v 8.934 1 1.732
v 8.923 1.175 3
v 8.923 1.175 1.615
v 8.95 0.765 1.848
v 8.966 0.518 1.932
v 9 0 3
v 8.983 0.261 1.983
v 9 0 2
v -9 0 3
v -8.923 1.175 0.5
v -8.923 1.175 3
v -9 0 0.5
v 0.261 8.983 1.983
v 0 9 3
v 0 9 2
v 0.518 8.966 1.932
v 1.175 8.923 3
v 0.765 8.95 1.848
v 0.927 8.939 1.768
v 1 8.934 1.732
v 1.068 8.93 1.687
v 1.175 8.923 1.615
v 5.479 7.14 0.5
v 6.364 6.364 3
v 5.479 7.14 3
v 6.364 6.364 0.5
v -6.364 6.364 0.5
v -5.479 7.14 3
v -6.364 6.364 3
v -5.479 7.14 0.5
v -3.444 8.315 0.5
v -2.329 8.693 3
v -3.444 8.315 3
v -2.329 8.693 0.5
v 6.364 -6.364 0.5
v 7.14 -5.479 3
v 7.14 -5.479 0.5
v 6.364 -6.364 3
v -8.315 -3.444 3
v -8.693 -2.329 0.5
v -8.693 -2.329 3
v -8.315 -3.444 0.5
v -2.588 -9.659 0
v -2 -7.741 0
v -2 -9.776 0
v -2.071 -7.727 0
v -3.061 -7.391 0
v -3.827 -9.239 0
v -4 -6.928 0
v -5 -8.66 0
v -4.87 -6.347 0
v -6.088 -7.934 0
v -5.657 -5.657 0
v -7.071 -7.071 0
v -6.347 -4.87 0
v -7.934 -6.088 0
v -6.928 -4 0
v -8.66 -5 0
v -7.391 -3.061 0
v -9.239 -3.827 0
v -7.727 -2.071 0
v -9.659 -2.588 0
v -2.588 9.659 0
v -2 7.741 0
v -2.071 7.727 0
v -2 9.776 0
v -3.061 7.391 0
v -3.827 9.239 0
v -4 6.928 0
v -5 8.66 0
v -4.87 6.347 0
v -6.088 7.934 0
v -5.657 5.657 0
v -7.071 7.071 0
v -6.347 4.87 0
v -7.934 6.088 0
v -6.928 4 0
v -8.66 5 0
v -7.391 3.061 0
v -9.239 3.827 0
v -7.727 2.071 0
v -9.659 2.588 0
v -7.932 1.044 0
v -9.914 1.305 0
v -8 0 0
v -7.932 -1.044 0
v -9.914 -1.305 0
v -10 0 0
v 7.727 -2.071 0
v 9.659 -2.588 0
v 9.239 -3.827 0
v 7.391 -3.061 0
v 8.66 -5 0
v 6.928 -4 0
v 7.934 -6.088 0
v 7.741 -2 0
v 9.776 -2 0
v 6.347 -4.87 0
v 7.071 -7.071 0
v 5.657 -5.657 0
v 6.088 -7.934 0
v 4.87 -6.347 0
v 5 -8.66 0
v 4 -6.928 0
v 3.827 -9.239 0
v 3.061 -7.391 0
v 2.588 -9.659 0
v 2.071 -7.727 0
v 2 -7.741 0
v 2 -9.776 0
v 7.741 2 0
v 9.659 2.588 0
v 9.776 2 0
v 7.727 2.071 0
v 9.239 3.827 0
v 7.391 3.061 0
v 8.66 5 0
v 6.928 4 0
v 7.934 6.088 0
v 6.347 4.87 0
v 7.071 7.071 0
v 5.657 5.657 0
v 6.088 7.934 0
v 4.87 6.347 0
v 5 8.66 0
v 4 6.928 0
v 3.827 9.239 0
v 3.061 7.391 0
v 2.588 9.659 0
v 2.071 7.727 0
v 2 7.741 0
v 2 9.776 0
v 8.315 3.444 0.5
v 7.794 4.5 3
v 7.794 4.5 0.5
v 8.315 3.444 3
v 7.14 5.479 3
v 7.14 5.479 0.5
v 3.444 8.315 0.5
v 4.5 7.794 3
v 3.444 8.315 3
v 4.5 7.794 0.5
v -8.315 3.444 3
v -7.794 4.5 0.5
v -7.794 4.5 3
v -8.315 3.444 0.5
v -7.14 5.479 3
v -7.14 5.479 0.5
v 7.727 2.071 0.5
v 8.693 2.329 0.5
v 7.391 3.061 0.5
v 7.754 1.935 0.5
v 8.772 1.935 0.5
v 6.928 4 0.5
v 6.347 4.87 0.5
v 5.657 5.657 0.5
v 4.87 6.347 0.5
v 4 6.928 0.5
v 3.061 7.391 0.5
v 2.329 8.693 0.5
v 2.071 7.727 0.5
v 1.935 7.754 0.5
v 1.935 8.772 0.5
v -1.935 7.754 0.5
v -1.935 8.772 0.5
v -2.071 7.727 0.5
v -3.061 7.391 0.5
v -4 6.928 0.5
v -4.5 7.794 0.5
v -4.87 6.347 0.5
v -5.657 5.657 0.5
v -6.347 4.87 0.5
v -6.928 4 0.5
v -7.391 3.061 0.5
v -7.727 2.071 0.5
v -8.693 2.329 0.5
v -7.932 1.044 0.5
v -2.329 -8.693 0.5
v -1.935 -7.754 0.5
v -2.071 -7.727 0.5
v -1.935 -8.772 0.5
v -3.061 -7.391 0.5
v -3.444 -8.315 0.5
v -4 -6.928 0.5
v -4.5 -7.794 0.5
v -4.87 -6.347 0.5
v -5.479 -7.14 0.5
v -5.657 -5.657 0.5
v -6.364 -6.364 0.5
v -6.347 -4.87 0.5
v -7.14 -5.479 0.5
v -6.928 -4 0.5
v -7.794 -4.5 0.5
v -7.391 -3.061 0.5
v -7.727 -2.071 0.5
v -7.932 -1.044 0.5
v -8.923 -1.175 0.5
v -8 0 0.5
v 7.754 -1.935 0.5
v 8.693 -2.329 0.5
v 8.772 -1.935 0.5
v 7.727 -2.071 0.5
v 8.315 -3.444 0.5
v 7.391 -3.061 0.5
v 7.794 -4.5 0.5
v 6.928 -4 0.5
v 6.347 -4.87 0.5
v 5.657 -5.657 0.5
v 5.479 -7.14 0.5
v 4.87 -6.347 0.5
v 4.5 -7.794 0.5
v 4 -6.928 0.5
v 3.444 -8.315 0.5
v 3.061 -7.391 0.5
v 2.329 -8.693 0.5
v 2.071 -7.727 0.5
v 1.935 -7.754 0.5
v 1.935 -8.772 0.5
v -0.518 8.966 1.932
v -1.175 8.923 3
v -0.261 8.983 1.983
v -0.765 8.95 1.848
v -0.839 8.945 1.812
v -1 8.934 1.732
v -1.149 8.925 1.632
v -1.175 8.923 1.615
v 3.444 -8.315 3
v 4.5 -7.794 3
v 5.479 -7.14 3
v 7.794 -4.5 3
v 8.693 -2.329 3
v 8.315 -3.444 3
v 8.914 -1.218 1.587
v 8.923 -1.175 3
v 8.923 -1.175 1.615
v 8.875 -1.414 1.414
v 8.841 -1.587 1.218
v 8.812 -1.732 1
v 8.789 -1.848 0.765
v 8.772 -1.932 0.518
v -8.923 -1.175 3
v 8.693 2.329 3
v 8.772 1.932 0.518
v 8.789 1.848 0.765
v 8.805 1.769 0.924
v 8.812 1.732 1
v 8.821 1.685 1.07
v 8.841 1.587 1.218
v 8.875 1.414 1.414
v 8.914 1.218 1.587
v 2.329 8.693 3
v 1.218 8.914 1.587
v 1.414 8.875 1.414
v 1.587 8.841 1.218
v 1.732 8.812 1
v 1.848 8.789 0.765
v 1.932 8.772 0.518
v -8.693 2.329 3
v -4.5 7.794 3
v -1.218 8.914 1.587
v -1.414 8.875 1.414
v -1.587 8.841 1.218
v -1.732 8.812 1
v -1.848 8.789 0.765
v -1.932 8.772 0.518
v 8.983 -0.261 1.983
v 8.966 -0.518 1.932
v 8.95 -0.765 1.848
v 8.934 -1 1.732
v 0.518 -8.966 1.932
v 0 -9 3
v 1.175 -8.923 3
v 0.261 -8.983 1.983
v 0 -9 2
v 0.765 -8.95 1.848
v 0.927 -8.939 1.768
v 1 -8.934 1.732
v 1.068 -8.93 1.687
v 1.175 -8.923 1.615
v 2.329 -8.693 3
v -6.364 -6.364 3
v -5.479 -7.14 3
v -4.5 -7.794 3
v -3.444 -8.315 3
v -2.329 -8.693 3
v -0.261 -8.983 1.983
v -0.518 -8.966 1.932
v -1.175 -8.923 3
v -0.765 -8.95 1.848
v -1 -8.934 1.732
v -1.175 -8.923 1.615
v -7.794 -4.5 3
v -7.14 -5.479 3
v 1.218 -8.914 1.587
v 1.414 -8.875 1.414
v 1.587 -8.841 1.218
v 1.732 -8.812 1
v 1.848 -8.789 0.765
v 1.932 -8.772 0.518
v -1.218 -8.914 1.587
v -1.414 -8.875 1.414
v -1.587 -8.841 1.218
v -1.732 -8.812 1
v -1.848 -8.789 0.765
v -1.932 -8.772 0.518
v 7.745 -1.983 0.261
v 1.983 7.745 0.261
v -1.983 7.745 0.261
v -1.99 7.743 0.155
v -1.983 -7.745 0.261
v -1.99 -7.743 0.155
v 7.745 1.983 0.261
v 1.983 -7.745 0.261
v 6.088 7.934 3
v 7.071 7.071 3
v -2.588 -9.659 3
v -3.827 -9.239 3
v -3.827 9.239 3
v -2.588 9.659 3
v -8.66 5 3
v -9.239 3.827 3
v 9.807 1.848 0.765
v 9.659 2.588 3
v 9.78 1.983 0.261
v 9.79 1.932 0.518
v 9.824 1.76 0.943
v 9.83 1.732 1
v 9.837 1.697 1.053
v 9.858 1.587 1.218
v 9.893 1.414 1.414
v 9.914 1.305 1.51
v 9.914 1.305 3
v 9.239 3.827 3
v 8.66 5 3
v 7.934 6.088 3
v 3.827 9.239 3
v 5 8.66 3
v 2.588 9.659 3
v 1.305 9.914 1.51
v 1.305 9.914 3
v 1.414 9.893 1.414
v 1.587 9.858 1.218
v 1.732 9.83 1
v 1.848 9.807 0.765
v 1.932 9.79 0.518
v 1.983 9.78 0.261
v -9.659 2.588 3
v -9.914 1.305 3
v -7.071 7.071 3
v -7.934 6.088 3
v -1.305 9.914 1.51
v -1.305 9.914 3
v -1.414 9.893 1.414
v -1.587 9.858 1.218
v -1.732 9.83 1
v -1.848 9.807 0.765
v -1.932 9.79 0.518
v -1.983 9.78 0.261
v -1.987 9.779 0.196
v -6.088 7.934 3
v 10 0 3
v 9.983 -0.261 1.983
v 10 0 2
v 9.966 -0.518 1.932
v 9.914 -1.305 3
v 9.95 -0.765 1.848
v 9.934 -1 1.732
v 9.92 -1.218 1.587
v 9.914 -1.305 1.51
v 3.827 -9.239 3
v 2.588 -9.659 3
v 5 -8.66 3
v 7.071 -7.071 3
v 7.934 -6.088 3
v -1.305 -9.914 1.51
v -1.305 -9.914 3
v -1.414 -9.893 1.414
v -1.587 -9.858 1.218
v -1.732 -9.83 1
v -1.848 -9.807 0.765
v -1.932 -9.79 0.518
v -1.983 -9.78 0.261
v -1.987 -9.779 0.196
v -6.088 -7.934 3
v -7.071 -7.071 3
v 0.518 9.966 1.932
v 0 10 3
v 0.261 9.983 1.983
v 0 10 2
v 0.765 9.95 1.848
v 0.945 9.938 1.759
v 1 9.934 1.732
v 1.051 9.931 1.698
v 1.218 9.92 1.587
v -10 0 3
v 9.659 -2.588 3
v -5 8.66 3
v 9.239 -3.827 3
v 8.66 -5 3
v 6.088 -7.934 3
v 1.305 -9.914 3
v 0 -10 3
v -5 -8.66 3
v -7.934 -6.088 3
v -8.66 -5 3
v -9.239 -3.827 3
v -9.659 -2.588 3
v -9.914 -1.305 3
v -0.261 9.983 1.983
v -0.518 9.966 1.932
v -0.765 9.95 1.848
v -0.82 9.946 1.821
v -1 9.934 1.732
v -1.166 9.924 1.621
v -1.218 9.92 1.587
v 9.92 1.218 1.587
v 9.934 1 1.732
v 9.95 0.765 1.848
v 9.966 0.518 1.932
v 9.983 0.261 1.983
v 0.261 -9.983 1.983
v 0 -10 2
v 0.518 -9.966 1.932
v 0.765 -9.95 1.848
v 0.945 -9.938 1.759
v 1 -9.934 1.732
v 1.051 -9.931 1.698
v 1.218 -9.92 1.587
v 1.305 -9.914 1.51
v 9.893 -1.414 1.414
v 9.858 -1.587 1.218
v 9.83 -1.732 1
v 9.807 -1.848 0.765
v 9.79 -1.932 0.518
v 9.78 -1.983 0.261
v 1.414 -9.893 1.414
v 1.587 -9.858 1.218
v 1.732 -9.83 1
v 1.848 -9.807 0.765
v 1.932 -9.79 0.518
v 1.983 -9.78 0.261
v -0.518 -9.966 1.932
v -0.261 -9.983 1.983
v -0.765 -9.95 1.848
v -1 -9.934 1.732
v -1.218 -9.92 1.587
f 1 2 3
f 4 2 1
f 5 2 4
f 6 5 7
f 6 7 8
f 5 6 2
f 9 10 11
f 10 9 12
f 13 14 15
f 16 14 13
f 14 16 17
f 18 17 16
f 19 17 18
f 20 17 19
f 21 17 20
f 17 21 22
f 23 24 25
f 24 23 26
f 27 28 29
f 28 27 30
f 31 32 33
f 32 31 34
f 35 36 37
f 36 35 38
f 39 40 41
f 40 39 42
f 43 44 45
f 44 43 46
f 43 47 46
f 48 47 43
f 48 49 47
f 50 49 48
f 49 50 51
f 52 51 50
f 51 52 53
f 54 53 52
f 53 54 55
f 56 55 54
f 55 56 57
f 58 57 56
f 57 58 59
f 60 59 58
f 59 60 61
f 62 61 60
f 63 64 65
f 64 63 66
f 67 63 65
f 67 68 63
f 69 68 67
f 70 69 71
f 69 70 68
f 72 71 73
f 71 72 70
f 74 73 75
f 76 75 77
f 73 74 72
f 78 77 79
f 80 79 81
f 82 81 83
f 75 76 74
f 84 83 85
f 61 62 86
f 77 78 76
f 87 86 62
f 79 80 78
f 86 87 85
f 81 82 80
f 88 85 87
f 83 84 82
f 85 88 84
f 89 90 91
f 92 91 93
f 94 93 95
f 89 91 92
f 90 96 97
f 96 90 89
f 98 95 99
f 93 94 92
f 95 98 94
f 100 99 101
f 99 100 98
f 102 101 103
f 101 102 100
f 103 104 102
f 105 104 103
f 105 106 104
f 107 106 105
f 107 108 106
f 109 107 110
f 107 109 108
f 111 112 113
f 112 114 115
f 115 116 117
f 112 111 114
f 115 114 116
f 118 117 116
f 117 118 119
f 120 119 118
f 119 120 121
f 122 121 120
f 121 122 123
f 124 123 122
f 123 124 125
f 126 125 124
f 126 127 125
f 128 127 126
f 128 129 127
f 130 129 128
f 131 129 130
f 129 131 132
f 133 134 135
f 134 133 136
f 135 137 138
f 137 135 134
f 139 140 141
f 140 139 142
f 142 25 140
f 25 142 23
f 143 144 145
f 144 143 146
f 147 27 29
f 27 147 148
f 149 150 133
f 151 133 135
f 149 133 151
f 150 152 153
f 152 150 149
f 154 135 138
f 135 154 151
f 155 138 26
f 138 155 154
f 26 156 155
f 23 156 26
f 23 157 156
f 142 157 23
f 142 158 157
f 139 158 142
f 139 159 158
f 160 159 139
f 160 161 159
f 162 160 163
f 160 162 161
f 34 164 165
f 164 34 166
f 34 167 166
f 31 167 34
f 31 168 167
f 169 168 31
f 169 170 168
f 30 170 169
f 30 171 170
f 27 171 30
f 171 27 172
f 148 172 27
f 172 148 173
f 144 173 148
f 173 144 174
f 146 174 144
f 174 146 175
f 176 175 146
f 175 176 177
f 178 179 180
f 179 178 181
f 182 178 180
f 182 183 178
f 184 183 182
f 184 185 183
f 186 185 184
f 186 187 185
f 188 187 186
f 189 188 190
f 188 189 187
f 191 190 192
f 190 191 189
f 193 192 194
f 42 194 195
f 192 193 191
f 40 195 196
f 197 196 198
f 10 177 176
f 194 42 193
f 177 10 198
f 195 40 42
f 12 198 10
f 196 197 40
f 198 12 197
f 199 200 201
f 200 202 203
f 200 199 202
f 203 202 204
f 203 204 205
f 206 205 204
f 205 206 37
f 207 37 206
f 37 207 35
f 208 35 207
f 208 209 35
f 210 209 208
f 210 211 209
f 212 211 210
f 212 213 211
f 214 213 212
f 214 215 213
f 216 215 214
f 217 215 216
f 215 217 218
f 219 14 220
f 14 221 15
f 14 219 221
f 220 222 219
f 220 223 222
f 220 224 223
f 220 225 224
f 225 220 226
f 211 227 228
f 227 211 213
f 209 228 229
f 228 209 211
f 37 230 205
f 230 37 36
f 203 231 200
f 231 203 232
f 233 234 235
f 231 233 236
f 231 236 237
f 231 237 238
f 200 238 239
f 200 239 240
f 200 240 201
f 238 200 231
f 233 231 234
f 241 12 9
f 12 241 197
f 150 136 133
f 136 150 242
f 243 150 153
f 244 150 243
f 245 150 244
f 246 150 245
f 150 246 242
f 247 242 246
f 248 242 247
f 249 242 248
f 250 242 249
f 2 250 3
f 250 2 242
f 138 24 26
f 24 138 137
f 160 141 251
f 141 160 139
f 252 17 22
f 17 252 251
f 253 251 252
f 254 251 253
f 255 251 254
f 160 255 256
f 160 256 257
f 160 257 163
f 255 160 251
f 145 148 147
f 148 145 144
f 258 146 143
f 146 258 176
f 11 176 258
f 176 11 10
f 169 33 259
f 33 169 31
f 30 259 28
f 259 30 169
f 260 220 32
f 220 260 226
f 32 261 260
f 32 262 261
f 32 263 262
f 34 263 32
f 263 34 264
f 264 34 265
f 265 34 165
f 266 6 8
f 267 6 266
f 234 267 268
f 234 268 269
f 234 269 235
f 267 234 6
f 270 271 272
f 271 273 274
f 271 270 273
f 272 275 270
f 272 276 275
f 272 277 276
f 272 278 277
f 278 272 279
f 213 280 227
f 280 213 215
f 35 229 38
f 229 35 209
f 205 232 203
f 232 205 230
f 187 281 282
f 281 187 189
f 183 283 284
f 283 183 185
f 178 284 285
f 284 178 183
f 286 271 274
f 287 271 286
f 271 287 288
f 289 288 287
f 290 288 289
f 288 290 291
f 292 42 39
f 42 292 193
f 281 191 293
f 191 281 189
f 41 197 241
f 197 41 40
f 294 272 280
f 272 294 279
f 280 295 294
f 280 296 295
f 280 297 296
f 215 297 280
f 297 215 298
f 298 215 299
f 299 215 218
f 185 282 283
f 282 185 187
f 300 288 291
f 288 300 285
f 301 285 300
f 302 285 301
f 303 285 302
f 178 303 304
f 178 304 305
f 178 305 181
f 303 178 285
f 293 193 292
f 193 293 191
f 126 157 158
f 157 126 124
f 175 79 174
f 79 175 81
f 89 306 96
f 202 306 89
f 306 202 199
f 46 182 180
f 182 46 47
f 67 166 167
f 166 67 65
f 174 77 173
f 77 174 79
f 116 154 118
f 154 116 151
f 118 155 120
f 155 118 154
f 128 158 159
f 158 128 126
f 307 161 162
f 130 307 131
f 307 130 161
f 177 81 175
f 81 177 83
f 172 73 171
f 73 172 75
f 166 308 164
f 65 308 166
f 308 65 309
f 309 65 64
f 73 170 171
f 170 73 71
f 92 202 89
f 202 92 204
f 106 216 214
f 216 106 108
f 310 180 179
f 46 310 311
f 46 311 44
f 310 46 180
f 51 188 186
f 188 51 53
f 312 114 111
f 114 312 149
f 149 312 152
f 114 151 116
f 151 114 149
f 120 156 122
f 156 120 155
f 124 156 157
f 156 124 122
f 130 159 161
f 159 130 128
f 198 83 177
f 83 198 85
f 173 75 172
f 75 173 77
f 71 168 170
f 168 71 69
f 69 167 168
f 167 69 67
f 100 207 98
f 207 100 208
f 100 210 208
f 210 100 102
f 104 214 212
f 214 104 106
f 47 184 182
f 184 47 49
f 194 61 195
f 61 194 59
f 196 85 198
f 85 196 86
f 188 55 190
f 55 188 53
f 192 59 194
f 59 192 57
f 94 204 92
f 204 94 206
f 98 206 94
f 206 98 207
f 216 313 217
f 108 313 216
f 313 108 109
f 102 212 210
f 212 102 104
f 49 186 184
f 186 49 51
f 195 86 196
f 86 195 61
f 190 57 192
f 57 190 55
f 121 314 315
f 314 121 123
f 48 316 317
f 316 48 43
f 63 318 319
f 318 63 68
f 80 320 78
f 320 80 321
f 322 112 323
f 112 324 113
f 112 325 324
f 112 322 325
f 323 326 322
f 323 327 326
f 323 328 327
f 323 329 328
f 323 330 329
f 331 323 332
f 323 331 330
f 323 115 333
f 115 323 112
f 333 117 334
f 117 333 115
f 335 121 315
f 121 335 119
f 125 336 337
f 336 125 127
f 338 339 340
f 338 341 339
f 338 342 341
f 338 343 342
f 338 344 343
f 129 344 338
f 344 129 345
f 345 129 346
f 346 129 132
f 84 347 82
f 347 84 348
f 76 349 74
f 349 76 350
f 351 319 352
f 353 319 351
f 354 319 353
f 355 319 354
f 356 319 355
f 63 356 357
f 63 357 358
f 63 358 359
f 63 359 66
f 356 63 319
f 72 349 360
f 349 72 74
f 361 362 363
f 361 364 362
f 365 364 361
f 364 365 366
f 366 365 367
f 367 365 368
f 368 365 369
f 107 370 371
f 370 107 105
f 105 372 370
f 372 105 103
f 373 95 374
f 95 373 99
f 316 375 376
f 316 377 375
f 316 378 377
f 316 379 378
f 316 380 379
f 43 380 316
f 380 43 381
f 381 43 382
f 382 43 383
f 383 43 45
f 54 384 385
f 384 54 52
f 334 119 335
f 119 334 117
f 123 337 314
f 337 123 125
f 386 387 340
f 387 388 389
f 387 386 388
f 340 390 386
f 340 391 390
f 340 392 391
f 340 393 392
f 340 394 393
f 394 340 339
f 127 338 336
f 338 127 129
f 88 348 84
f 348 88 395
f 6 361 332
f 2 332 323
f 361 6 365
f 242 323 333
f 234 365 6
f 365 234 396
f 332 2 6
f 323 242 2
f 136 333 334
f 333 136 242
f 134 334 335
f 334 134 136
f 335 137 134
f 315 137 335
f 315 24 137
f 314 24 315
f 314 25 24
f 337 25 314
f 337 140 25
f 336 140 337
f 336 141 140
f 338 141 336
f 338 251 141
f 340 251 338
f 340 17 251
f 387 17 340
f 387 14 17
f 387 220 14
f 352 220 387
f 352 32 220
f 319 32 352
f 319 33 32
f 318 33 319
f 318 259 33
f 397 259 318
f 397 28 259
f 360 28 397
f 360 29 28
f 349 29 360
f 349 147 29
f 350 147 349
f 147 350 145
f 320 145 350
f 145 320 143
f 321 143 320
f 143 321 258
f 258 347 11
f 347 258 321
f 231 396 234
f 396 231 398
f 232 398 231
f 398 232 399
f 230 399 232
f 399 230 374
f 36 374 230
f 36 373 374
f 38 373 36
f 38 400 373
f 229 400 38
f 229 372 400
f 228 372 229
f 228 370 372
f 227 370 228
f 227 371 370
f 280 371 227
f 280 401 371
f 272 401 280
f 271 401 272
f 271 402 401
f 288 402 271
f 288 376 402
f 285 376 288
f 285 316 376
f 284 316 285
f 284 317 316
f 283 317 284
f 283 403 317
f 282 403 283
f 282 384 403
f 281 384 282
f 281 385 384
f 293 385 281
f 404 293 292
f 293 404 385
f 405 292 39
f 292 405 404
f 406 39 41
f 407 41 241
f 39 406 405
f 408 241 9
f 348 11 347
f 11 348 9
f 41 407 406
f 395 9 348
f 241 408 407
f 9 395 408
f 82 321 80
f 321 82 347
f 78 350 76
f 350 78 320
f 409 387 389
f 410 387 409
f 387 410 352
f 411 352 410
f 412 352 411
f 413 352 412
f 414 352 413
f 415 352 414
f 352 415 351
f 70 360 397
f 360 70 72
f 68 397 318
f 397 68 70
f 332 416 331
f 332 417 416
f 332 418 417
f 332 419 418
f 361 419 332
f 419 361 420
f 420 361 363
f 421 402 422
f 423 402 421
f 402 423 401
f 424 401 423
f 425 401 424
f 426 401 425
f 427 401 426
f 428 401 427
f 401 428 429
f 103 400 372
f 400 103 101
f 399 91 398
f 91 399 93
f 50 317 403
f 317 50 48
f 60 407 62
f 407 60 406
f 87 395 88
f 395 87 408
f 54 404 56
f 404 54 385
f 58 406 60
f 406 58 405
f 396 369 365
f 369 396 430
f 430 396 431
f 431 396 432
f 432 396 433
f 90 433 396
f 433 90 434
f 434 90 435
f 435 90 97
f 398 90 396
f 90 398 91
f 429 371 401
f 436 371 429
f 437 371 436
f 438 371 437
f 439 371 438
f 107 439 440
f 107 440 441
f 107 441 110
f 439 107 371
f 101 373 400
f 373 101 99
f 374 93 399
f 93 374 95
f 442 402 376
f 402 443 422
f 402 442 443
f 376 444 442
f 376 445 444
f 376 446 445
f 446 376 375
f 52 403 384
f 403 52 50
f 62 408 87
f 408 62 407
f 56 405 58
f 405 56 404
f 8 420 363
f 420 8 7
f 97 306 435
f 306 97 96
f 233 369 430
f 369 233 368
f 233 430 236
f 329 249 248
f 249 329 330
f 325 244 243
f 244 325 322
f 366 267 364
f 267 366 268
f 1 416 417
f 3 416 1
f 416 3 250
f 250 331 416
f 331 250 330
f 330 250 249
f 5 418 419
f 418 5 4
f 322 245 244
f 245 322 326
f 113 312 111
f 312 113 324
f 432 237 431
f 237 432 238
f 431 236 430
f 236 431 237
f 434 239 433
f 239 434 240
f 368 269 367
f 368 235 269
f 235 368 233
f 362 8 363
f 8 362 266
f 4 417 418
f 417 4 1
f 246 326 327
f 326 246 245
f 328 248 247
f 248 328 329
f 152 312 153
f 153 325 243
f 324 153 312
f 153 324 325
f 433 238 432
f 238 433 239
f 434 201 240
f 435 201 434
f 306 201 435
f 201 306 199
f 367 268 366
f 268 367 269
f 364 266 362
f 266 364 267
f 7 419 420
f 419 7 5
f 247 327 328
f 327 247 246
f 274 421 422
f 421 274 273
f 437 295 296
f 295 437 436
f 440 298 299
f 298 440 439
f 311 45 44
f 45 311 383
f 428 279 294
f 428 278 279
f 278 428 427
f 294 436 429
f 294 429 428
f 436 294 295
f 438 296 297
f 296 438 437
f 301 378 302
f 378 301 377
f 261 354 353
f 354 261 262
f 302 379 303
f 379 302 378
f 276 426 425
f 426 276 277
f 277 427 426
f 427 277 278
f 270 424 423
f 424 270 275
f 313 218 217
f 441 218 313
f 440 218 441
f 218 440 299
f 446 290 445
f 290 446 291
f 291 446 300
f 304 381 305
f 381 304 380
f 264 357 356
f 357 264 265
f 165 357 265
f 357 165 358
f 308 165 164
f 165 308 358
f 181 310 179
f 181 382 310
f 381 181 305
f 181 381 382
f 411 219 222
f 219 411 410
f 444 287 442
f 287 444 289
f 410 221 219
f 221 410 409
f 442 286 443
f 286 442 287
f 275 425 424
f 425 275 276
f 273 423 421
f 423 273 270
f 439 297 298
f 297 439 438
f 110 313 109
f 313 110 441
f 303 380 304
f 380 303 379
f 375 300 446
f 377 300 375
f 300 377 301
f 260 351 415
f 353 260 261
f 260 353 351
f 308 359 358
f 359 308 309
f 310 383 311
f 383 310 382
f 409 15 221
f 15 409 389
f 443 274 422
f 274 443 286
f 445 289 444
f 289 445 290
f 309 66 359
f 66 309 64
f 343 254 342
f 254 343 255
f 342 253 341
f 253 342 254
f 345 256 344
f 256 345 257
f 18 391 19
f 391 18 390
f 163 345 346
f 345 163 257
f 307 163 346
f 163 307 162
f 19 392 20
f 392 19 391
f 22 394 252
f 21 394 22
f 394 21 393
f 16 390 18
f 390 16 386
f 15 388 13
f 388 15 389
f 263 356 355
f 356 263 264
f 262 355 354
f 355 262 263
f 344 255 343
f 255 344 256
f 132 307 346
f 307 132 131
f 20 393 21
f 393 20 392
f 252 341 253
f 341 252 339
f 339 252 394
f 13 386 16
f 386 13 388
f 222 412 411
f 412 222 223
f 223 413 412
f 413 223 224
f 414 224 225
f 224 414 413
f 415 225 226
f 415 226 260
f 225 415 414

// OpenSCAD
// file: ../build_environments.scad
// build_environments.scad: modules to build level sections
//

module pool(diameter=10.0, wall_height=2.0, step_width=3.0, connections=[])
{
    difference() {
        union() {
        difference() {
            cylinder(h=0.5,r1=diameter+step_width,r2=diameter+step_width,$fn=48);
            translate([0,0,-0.1])
                cylinder(h=0.7,r1=diameter,r2=diameter,$fn=48);
        }
        difference() {
            cylinder(h=wall_height,r1=diameter+step_width+1.0,r2=diameter+step_width+1.0,$fn=48);
            translate([0,0,-0.1])
                cylinder(h=wall_height+0.2,r1=diameter+step_width,r2=diameter+step_width,$fn=48);
        }
        }
    
        for (c = connections)
        {
            rotate([0,90,0]) {
                angle = atan2(c[1],c[0]);
                rotate([-angle,0,0]) {
                    cylinder(h=diameter+5.0,r1=c[2],r2=c[2],$fn=48);
                }
            }
        }
    }
}

module straight(length=10.0, width=2.0, dy1=0.0, dy2=0.0, dz=0.0)
{
    dims = [0, 0, 0, 0, 0, (dz/length)];
    matrix = [
        [ 1, dims[0], dims[1], 0 ],
        [ dims[2], 1, dims[4], 0 ],
        [ dims[5], dims[3], 1, 0 ],
        [ 0, 0, 0, 1 ]
    ];
    multmatrix(matrix)
    difference() {
        translate([dy1,0,0])
        union() {
            rotate([0,90,0]) {
                difference() {
                    cylinder(h=(length-dy1-dy2),r1=width+1.0,r2=width+1.0,$fn=24);
                    translate([0,0,-0.1])
                        cylinder(h=(length-dy1-dy2+0.2),r1=width,r2=width,$fn=24);
                }
                difference() {
                    cylinder(h=1.0,r1=width+2.0,r2=width+2.0,$fn=24);
                    translate([0,0,-0.1])
                        cylinder(h=1.2,r1=width,r2=width,$fn=24);
                }
                translate([0,0,(length-dy1-dy2)-1.0]) {
                    difference() {
                        cylinder(h=1.0,r1=width+2.0,r2=width+2.0,$fn=24);
                        translate([0,0,-0.1])
                            cylinder(h=1.2,r1=width,r2=width,$fn=24);
                    }
                }
            }
        }
        translate([0,0,-(2*width+4.0)/2])
            cube([3*length,3*length,2*width+4.0],center=true);
    }
}

module curve(p0=[0,0], center=[0,0], dir=1, angle=0.0, width=2.0)
{
    radius = sqrt((p0[0]-center[0])*(p0[0]-center[0]) + (p0[1]-center[1])*(p0[1]-center[1]));
    if (dir == 0) {
        difference() {
            rotate([0,0,-90])
            difference() {
                rotate_extrude(angle = angle, convexity = 10, $fn=32)
                    translate([radius, 0, 0])
                        circle(r = width+1.0,$fn=24);
                rotate([0,0,-1.0])
                    rotate_extrude(angle = angle+2.0, convexity = 10, $fn=32)
                        translate([radius, 0, 0])
                            circle(r = width,$fn=24);
            }
            translate([0,0,-(2*width+4.0)/2])
                cube([5*radius,5*radius,2*width+4.0],center=true);
        }
    }
    else {
        difference() {
            rotate([0,0,90])
            difference() {
                rotate_extrude(angle = -angle, convexity = 10, $fn=32)
                    translate([radius, 0, 0])
                        circle(r = width+1.0,$fn=24);
                rotate([0,0,1.0])
                    rotate_extrude(angle = -angle-2.0, convexity = 10, $fn=32)
                        translate([radius, 0, 0])
                            circle(r = width,$fn=24);
            }
            translate([0,0,-(2*width+4.0)/2])
                cube([5*radius,5*radius,2*width+4.0],center=true);
        }
    }

}

// test pool
//pool(diameter=12.0000, wall_height=3.0000, step_width=3.0000, connections=[[0.0000,-26.0000,2.0000], [23.6074,0.0000,2.0000]]);

// test straight, slope
//straight(length=26.0000, width=2.0000, dy1=11.8322, dy2=6.7082, dz=0.0000);
//straight(length=29.1549, width=12.0000, dy1=0.0000, dy2=0.0000, dz=-15.0000);

// test curve
//curve(p0=[23.6074, 0.0000], center=[23.6074, 5.0000], dir=0, angle=60.1011, width=2.0000);
//curve(p0=[33.6426, 12.4219], center=[37.9771, 9.9295], dir=1, angle=120.4627, width=2.0000);
// main file
use <../build_environments.scad>;
pool(diameter=8.0000, wall_height=3.0000, step_width=1.0000, connections=[[20.0000,0.0000,2.0000], [0.0000,-8.6975,2.0000], [0.0000,25.0000,2.0000]]);
